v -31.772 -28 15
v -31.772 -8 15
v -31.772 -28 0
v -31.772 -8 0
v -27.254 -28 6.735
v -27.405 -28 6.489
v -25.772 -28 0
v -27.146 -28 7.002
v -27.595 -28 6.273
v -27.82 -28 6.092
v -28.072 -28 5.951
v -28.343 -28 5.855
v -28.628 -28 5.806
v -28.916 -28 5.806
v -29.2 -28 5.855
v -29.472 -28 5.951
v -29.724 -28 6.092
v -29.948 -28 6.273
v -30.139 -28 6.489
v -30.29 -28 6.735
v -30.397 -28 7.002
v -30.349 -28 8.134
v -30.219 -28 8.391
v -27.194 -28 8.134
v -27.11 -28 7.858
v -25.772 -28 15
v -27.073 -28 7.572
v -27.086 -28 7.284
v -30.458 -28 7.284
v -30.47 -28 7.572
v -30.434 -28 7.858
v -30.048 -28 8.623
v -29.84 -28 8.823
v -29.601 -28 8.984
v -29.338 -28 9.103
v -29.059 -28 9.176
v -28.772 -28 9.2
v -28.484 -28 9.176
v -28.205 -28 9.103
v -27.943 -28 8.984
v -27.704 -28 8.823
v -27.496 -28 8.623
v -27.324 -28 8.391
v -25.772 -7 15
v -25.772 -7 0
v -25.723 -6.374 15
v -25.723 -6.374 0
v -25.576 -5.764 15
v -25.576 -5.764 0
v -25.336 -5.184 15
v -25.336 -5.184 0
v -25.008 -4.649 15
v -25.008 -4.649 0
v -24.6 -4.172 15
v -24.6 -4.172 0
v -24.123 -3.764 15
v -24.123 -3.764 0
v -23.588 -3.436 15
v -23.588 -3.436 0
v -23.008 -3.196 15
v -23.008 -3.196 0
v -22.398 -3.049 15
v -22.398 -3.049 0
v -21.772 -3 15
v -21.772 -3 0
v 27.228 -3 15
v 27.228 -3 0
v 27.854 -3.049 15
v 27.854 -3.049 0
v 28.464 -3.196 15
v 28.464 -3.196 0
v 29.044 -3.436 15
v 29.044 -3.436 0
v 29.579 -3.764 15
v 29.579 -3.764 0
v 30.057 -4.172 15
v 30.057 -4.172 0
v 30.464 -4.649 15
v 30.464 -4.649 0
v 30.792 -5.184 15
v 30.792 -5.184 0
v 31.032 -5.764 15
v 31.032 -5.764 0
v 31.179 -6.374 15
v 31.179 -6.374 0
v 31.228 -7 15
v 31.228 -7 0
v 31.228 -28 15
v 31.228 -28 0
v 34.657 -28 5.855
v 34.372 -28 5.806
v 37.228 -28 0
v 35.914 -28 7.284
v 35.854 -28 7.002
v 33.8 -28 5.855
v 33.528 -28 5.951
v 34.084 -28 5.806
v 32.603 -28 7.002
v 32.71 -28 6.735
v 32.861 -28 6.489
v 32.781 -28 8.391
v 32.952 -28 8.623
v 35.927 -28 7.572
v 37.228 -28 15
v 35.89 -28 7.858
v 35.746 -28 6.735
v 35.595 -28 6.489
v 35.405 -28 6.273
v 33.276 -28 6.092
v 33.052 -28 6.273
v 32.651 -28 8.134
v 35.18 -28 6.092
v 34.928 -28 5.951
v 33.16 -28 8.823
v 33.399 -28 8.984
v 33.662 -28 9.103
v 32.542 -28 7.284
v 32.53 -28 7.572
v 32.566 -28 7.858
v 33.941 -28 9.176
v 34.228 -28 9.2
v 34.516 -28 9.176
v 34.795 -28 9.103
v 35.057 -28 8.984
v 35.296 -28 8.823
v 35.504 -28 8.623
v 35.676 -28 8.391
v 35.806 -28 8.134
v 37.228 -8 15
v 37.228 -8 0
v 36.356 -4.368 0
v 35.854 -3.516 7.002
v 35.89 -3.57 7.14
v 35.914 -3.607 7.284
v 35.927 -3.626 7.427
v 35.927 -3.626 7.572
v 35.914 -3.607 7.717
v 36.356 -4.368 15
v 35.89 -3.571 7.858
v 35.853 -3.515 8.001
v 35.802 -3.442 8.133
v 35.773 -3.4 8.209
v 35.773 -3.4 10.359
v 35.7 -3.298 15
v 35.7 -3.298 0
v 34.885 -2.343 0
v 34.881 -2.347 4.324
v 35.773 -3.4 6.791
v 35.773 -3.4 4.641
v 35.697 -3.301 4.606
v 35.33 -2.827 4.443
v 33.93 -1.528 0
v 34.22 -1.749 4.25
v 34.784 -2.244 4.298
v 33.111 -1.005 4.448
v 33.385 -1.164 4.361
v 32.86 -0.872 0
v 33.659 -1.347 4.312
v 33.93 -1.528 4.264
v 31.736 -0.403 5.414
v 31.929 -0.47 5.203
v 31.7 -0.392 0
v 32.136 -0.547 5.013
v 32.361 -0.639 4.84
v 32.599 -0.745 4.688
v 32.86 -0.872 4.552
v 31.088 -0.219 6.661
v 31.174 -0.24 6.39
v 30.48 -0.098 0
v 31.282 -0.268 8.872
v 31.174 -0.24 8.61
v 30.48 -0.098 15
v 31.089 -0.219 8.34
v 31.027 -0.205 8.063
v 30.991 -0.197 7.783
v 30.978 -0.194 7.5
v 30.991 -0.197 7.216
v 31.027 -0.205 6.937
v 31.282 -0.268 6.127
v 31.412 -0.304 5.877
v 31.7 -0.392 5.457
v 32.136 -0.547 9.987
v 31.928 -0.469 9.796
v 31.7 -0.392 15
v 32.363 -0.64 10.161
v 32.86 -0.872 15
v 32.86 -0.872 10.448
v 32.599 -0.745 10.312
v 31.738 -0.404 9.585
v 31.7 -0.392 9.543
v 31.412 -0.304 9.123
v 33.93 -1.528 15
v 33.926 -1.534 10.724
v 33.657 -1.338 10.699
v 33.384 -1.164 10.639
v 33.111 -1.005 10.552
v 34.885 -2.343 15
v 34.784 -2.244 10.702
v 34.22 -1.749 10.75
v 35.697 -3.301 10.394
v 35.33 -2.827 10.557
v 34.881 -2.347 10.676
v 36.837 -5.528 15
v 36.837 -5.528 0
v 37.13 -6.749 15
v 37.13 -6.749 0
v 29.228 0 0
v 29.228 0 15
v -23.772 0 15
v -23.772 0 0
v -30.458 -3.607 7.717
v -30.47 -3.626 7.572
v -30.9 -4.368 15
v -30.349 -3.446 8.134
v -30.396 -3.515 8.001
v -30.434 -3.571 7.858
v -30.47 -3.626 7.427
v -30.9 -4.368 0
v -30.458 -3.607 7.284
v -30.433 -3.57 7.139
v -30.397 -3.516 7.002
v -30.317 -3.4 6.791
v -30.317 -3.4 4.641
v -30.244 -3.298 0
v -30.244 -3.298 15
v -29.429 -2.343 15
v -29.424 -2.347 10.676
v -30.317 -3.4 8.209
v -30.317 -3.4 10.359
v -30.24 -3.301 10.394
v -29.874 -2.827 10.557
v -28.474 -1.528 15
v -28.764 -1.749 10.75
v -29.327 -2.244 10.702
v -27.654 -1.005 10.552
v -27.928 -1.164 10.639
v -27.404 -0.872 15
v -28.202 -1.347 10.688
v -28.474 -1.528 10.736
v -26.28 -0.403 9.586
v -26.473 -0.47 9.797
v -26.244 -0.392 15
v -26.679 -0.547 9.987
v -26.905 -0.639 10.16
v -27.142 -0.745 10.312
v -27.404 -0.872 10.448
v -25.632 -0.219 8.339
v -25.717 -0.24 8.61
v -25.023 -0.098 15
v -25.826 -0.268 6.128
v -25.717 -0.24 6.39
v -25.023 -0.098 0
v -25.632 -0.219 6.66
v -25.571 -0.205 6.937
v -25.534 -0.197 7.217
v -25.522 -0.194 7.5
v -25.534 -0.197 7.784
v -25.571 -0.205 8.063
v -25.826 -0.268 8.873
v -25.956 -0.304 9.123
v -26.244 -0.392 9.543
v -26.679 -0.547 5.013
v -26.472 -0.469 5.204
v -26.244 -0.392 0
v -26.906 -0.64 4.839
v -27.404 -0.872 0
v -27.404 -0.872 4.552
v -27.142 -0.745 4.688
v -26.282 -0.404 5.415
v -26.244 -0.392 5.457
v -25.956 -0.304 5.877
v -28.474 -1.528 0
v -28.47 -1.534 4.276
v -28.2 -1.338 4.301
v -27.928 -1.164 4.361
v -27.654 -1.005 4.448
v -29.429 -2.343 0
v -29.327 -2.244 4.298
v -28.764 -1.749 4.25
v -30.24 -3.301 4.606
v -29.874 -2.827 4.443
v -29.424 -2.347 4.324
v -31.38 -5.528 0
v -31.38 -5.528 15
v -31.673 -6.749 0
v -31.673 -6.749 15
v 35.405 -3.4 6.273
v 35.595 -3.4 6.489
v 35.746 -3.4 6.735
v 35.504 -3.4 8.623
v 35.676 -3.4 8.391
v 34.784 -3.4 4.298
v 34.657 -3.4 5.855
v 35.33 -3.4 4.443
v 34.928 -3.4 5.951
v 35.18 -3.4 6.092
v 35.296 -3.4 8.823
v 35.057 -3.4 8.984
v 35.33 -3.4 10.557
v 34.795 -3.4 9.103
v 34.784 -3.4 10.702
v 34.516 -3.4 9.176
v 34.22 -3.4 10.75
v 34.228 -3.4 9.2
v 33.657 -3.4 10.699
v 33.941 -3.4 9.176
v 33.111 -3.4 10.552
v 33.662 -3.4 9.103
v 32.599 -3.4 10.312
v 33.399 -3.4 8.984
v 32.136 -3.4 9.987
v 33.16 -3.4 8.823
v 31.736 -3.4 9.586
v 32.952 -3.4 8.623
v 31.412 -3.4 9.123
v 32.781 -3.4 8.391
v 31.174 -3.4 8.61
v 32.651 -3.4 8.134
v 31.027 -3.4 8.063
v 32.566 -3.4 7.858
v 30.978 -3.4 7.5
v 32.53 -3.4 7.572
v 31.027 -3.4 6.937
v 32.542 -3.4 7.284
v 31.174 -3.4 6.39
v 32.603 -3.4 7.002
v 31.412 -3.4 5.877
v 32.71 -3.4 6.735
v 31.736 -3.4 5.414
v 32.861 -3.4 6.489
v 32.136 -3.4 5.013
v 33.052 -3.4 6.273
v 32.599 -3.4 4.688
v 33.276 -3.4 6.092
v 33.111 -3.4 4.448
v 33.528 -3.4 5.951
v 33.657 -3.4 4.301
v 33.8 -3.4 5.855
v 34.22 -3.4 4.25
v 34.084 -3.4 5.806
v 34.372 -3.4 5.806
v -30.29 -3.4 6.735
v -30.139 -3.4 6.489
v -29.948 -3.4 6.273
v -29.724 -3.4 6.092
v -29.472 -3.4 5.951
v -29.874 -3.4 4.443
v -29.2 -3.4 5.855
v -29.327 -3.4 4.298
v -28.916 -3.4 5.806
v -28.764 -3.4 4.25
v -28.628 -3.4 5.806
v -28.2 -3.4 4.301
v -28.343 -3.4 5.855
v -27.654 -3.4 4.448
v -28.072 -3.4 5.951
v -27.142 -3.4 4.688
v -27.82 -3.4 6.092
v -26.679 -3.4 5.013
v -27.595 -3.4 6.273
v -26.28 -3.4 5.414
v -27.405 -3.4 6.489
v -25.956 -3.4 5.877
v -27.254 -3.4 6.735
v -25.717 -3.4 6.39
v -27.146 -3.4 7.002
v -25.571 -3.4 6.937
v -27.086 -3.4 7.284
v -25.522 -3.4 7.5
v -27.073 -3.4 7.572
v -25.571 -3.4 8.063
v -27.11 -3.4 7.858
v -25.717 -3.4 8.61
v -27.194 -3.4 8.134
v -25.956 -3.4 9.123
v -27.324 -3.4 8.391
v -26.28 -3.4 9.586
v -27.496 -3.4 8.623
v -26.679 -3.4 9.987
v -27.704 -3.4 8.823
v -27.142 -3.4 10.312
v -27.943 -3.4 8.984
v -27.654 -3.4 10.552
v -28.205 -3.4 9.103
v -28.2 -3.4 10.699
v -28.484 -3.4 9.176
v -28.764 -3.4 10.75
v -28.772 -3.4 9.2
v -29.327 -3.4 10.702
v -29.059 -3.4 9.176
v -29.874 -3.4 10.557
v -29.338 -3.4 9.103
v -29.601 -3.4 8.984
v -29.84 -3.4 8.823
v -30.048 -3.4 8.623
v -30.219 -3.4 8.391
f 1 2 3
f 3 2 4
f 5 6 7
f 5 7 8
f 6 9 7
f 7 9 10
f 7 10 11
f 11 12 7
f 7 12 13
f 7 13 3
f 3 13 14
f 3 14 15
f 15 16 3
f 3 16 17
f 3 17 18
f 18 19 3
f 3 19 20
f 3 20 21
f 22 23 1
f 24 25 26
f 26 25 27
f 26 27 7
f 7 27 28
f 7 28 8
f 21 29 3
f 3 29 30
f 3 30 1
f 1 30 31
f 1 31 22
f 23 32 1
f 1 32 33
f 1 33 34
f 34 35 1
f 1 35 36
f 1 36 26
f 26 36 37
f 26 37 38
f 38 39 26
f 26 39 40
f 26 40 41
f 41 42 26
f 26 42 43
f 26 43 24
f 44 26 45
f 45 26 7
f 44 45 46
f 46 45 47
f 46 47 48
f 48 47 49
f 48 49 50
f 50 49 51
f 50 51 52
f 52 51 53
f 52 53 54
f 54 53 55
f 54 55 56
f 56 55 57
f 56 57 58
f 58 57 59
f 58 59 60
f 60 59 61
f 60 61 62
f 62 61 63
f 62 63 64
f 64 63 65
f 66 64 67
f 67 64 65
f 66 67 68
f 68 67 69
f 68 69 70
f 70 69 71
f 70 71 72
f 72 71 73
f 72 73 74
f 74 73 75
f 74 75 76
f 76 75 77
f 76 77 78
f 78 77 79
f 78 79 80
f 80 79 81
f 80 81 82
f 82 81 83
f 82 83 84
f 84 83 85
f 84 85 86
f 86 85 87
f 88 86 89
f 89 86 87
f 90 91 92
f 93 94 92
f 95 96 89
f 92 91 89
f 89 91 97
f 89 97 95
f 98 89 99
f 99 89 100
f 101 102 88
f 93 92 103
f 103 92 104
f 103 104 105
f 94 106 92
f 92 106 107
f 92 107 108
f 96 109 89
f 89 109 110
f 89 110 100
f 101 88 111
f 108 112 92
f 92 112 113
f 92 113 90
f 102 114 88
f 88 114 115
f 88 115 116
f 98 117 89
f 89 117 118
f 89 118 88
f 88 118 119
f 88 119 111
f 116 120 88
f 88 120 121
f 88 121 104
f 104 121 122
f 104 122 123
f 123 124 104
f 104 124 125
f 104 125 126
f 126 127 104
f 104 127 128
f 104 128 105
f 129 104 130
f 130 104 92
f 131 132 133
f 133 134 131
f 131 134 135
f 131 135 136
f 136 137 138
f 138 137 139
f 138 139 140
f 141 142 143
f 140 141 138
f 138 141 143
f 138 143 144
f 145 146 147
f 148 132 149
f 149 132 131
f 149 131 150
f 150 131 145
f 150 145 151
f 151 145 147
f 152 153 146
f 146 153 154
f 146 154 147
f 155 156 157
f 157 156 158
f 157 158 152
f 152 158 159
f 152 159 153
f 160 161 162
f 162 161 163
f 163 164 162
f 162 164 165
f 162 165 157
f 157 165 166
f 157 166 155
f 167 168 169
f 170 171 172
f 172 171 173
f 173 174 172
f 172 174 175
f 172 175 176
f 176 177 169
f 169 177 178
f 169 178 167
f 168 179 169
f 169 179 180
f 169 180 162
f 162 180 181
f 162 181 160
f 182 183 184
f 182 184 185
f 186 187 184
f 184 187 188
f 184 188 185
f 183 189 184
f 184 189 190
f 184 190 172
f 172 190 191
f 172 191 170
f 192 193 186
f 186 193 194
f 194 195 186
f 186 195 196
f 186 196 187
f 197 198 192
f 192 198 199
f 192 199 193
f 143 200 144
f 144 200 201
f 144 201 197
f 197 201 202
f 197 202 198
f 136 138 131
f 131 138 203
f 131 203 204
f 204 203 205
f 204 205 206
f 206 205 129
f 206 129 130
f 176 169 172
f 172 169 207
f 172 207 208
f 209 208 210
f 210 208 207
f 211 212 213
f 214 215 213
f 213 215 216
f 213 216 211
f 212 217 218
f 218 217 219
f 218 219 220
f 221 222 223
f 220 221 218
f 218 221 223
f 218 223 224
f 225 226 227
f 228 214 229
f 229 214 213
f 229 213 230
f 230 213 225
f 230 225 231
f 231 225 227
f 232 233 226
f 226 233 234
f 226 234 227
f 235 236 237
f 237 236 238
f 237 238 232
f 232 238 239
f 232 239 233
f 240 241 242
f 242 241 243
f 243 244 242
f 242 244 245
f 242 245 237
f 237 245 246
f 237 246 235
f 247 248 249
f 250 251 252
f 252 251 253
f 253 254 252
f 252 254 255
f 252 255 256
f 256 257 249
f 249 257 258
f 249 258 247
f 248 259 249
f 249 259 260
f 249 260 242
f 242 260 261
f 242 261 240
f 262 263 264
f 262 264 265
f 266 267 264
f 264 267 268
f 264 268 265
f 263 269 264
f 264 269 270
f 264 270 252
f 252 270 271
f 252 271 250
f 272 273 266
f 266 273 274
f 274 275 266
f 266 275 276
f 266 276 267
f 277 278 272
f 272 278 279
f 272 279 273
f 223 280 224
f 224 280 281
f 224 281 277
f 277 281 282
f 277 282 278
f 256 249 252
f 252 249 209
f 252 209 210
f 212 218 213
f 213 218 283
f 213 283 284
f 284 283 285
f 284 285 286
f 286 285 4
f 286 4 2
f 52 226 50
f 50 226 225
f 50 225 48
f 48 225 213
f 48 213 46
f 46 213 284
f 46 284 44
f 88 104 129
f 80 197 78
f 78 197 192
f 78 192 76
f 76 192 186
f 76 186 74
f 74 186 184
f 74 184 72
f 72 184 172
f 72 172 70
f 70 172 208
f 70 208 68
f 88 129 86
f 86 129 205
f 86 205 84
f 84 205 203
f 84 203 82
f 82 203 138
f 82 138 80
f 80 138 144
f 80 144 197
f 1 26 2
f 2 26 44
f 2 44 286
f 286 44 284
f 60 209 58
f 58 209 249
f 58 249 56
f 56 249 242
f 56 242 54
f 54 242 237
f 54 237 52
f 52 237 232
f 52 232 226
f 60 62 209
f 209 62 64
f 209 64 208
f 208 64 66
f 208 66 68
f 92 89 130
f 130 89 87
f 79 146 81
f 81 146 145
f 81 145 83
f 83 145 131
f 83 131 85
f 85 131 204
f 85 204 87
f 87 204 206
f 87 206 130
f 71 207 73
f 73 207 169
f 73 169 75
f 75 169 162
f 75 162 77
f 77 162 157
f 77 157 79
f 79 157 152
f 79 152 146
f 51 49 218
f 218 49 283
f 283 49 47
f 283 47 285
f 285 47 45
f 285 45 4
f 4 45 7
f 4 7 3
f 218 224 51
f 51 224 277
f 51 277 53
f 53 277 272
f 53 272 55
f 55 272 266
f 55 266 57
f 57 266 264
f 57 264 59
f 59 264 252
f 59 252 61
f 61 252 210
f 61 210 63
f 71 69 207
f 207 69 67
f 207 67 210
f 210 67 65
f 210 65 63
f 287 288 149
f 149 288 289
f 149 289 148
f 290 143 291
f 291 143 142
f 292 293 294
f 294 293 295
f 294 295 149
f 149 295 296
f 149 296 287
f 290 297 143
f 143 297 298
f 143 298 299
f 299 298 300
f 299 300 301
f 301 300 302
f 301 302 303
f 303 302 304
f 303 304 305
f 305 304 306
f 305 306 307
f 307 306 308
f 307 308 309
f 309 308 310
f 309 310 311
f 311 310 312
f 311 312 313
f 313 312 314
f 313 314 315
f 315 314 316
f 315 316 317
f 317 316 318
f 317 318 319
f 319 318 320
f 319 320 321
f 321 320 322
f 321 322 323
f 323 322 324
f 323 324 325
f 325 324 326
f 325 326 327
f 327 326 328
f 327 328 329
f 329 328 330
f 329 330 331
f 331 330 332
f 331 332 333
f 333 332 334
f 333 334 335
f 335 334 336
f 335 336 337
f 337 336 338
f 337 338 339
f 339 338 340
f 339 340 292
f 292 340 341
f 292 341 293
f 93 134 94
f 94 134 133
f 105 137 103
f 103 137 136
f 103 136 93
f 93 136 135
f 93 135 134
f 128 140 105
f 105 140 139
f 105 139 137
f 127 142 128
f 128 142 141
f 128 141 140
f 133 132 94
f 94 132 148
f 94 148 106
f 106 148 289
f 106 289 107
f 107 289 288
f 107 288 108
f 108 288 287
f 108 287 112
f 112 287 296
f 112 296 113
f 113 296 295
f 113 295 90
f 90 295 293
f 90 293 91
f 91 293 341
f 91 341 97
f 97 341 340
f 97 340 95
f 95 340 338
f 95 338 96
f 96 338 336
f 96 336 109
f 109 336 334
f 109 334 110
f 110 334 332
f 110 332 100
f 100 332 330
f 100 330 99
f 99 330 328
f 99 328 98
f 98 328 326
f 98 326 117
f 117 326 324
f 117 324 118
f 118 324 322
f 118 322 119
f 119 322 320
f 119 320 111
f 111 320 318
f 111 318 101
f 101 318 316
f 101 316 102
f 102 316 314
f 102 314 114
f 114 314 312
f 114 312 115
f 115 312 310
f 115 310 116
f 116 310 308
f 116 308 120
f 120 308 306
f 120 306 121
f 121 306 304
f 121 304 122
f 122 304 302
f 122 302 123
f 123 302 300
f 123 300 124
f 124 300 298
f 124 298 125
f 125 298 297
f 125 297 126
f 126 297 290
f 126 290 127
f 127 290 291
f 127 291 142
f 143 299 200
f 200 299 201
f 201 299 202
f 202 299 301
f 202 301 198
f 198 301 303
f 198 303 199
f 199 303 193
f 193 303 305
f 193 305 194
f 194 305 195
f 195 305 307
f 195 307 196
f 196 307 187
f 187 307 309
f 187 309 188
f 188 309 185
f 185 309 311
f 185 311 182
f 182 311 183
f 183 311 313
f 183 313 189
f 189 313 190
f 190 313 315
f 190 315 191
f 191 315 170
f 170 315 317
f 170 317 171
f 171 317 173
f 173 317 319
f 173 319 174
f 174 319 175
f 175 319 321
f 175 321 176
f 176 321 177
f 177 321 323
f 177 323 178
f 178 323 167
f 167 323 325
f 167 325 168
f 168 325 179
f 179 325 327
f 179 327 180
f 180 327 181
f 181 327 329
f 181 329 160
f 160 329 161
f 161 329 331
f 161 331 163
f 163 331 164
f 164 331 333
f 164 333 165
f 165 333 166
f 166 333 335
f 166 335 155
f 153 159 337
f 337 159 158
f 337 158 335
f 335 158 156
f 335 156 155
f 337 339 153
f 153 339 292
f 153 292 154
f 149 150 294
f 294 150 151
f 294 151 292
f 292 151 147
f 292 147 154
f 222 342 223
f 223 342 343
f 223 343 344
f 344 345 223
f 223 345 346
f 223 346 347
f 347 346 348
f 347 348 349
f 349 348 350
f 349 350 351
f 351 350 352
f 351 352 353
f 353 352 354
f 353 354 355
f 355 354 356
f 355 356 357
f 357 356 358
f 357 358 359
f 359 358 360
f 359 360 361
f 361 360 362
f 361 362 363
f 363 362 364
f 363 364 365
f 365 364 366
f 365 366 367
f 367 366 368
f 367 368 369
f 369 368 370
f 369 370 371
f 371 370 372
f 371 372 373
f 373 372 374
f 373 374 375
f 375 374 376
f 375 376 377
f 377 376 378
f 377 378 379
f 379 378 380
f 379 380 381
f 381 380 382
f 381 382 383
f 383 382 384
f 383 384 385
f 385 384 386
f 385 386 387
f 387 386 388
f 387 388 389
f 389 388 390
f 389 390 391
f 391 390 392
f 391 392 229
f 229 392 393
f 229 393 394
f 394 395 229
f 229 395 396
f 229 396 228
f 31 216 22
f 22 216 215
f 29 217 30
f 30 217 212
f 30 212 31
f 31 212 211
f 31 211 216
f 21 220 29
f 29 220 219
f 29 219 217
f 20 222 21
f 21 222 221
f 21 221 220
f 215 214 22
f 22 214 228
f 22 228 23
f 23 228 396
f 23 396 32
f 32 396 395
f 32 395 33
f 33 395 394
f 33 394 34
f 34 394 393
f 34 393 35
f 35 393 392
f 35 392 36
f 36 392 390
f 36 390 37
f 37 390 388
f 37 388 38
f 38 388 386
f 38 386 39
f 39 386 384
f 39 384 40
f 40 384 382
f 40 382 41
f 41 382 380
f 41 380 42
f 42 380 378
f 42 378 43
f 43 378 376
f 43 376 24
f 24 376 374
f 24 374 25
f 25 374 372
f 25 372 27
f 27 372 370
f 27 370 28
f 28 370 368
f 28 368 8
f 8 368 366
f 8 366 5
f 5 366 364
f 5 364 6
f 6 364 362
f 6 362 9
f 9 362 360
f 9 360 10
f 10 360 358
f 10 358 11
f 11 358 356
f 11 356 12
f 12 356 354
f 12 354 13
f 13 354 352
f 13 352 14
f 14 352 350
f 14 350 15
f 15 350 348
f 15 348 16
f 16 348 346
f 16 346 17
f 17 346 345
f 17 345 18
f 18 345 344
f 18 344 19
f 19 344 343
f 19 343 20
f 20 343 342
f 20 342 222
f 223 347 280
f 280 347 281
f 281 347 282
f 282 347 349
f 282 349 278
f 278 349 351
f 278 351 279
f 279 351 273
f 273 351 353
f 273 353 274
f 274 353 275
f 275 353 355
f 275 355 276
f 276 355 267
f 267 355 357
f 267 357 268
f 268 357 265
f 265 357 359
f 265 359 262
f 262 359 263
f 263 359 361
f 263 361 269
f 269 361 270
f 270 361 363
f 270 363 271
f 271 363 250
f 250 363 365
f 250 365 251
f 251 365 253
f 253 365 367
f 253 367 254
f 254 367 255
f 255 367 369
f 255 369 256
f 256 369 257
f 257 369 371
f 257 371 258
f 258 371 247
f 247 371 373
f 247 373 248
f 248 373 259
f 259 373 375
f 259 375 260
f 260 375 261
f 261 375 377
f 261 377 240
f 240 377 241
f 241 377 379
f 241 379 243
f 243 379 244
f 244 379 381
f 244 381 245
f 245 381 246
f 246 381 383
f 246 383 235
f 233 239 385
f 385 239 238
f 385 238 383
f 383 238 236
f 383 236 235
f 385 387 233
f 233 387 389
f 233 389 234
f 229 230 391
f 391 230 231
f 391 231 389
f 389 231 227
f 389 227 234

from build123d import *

# Parameters (mm, degrees)
P_IDAT_VYSUNUT_M1_DEPTH                          = 15
V_LCOV_ZAHLOUBEN_PRO_M3_ROUBY_S_VNIT_D           = 3.4
V_LCOV_ZAHLOUBEN_PRO_M3_ROUBY_S_VNIT_CBORE_D     = 6.5
V_LCOV_ZAHLOUBEN_PRO_M3_ROUBY_S_VNIT_CBORE_DEPTH = 3.4


with BuildPart() as part:
    # Skica1 → Přidat vysunutím1 (new body)
    with BuildSketch(Plane.XY):
        with BuildLine():
            Line((-23.771796173, 0), (29.228203827, 0))
            ThreePointArc((29.228203827, 0), (34.885058077, -2.343145751), (37.228203827, -8))
            Line((37.228203827, -8), (37.228203827, -28))
            Line((37.228203827, -28), (31.228203827, -28))
            Line((31.228203827, -28), (31.228203827, -7))
            ThreePointArc((31.228203827, -7), (30.056630952, -4.171572875), (27.228203827, -3))
            Line((27.228203827, -3), (-21.771796173, -3))
            ThreePointArc((-21.771796173, -3), (-24.600223298, -4.171572875), (-25.771796173, -7))
            Line((-25.771796173, -7), (-25.771796173, -28))
            Line((-25.771796173, -28), (-31.771796173, -28))
            Line((-31.771796173, -28), (-31.771796173, -8))
            ThreePointArc((-31.771796173, -8), (-29.428650422, -2.343145751), (-23.771796173, 0))
        make_face()
    extrude(amount=P_IDAT_VYSUNUT_M1_DEPTH)

    # Válcové zahloubení pro M3 šrouby s vnitřním šestihranem1 (through all)
    with Locations(Plane(origin=(0, 0, 0), x_dir=(1, 0, 0), z_dir=(0, 1, 0))):
        with Locations((-28.771796173, -7.5), (34.228203827, -7.5)):
            CounterBoreHole(V_LCOV_ZAHLOUBEN_PRO_M3_ROUBY_S_VNIT_D / 2, V_LCOV_ZAHLOUBEN_PRO_M3_ROUBY_S_VNIT_CBORE_D / 2, V_LCOV_ZAHLOUBEN_PRO_M3_ROUBY_S_VNIT_CBORE_DEPTH)


solid = part.part
